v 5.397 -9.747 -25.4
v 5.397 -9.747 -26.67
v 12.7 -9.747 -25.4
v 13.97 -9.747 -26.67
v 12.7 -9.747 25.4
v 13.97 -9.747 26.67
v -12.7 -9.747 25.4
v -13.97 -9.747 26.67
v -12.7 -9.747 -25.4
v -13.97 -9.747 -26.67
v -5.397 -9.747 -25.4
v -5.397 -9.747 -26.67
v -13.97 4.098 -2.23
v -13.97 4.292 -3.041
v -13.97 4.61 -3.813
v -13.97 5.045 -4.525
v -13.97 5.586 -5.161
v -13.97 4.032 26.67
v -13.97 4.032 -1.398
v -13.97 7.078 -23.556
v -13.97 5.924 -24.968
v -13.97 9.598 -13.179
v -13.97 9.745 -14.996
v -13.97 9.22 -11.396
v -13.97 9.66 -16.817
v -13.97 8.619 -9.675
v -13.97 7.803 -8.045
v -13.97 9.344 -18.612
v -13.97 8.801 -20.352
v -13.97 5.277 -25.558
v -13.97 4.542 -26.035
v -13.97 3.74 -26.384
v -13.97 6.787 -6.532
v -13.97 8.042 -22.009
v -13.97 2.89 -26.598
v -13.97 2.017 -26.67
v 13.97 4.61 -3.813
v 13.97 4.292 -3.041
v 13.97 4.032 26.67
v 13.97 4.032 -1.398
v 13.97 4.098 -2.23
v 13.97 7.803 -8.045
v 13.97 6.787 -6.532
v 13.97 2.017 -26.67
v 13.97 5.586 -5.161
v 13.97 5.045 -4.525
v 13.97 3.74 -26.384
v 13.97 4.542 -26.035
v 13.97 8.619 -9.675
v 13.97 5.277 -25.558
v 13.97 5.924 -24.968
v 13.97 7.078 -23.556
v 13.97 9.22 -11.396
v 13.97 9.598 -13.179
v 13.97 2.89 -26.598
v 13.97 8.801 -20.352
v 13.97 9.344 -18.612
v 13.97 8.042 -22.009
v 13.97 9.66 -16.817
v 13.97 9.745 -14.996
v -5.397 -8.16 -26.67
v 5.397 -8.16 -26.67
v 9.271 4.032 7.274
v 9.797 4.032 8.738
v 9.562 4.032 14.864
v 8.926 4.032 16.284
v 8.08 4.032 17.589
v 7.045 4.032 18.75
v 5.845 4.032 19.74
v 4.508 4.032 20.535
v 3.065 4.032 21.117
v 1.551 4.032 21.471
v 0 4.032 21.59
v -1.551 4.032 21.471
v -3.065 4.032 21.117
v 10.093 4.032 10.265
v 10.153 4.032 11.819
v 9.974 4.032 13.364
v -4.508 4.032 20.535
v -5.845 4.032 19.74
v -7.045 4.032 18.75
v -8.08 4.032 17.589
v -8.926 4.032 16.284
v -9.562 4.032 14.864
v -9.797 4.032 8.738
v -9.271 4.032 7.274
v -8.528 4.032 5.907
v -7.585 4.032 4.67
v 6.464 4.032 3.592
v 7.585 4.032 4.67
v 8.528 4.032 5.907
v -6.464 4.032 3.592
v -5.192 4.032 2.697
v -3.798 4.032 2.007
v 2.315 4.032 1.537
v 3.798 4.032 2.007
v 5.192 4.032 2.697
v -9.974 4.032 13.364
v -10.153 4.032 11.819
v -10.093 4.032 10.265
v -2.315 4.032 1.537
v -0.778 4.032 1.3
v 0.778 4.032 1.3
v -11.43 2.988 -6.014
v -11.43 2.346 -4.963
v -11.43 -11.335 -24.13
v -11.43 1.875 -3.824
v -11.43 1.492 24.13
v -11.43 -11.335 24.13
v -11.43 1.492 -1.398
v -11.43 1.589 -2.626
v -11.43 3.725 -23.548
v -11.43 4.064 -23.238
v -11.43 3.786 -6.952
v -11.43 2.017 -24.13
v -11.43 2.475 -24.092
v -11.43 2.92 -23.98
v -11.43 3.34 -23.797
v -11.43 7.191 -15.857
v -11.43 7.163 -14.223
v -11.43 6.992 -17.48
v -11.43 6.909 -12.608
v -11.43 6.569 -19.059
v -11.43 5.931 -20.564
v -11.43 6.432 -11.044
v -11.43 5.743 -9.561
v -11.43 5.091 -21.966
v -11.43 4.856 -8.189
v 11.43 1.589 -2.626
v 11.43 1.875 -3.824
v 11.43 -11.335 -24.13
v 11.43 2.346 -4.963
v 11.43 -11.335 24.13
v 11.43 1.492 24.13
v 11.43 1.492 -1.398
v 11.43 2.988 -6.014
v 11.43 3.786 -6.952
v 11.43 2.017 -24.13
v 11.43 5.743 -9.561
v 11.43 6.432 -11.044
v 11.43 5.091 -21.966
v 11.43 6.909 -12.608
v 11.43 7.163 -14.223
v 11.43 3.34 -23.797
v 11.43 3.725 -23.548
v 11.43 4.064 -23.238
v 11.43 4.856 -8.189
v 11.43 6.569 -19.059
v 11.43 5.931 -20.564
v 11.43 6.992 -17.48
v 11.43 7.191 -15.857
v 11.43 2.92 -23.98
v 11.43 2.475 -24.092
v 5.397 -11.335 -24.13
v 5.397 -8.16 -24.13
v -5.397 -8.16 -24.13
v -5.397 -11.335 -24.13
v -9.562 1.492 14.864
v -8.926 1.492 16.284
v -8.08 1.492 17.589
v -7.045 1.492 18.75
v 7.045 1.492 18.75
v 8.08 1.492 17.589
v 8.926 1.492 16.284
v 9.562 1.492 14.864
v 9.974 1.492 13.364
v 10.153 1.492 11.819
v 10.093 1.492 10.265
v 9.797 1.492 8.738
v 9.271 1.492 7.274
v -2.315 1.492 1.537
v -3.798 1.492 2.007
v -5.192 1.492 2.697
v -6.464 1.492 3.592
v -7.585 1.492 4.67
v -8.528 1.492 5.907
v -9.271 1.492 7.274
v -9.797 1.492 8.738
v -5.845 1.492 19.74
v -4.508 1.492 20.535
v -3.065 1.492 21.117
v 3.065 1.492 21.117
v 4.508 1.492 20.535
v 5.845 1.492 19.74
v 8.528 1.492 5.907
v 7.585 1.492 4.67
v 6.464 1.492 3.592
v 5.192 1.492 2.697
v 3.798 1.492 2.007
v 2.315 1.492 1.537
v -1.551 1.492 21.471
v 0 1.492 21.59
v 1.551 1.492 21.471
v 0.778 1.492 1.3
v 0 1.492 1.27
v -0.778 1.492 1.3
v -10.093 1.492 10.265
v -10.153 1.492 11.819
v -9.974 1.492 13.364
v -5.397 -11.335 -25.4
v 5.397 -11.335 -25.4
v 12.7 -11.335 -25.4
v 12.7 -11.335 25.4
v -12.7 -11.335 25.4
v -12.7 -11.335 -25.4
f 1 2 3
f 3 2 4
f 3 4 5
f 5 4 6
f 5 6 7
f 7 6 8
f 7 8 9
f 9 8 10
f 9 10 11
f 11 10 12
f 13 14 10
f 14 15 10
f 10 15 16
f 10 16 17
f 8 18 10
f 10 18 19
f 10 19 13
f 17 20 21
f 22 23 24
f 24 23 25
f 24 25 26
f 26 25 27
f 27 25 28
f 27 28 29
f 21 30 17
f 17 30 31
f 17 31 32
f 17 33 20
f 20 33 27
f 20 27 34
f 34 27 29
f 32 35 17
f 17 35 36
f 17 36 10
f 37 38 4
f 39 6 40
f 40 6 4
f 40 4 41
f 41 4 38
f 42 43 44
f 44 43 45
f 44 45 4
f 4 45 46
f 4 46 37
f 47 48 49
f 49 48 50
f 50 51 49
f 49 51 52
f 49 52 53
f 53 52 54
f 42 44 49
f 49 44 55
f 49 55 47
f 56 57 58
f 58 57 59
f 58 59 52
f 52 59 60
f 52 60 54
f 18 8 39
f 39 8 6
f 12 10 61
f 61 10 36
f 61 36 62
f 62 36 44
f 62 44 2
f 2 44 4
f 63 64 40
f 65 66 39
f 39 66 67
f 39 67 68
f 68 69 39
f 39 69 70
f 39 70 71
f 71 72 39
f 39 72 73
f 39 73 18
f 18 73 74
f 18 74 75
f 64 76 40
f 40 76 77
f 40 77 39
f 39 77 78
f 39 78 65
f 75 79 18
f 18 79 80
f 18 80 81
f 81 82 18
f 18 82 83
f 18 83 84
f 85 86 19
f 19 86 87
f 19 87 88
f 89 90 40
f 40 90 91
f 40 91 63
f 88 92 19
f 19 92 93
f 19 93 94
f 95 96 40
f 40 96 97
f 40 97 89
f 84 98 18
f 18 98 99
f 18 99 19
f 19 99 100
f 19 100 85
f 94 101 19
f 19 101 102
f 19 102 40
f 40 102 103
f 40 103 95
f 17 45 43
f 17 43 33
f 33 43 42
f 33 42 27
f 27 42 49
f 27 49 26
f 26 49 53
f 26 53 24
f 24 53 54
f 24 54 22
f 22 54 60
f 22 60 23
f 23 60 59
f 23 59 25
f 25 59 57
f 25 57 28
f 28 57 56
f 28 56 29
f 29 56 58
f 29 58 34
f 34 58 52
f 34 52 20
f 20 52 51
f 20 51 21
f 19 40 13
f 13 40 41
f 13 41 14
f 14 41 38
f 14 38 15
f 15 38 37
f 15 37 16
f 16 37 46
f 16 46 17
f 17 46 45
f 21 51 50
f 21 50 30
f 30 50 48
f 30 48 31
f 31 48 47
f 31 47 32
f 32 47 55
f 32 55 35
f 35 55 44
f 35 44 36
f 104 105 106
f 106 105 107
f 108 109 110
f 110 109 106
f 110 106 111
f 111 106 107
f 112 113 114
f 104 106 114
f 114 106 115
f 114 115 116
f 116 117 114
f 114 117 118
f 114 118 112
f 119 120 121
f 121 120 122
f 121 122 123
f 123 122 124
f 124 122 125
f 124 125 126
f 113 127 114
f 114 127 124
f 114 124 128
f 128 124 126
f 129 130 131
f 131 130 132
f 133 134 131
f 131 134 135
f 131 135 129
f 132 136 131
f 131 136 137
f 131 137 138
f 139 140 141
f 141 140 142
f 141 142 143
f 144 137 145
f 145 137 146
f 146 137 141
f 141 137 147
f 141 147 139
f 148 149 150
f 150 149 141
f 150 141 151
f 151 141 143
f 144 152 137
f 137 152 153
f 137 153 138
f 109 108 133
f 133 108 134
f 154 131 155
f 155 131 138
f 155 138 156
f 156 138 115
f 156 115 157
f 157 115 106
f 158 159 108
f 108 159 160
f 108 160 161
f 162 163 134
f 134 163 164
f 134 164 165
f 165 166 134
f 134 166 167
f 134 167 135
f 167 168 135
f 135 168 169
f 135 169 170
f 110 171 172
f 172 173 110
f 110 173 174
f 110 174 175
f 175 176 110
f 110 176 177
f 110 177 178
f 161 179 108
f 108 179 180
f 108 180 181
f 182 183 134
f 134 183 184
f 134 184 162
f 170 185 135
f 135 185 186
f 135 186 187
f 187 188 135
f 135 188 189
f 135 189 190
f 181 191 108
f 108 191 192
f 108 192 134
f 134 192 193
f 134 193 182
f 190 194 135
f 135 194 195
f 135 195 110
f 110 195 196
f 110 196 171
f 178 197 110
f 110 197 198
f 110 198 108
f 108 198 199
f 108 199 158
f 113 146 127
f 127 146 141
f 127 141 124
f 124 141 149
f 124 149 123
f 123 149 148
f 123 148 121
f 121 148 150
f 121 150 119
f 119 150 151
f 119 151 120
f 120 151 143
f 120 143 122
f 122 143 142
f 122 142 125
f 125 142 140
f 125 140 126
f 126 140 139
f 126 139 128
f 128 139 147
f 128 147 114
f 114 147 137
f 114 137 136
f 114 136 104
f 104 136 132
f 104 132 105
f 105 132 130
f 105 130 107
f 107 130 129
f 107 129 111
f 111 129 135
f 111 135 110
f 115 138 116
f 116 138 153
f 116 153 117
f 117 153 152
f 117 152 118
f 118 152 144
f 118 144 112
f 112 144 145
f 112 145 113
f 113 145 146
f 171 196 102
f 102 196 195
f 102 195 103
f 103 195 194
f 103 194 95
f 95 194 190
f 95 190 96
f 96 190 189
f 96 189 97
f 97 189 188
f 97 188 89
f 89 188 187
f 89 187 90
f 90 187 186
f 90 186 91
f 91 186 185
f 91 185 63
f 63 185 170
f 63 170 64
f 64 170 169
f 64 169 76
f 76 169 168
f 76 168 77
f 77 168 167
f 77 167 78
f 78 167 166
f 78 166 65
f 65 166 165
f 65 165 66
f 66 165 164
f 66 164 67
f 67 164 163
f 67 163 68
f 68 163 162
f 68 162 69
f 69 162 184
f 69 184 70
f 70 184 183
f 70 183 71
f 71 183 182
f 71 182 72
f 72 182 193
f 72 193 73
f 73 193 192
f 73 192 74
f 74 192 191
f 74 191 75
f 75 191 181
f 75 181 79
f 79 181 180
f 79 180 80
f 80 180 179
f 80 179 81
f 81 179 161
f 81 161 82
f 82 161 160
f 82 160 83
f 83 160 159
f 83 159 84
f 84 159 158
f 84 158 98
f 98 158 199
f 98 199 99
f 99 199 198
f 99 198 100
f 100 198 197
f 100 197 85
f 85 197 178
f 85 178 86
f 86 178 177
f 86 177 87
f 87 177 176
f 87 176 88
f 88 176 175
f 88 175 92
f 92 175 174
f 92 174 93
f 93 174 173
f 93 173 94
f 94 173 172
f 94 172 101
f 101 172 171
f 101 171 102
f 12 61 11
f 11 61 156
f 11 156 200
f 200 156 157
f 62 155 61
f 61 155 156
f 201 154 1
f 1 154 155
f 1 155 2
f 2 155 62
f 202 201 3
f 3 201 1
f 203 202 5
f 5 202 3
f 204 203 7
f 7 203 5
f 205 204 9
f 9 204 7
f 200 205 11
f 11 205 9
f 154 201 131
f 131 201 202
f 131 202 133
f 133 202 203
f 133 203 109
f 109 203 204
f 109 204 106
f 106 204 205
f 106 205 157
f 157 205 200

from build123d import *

# Parameters (mm, degrees)
SKETCH1_W           = 27.94
SKETCH1_H           = 53.34
BOSS_EXTRUDE1_DEPTH = 9.74725
CUT_EXTRUDE1_DEPTH  = 27.94
FILLET1_R           = 5.334
FILLET2_R           = 5.334
SHELL1_T            = -2.54
SKETCH3_R           = 10.16
CUT_EXTRUDE2_DEPTH  = 24.13
SKETCH5_W           = 10.795
SKETCH5_H           = 1.5875
CUT_EXTRUDE3_DEPTH  = 2.54
BOSS_EXTRUDE2_DEPTH = 1.5875


with BuildPart() as part:
    # Sketch1 → Boss-Extrude1 (new, symmetric)
    with BuildSketch(Plane(origin=(0, 0, 0), x_dir=(1, 0, 0), z_dir=(0, 1, 0))):
        Rectangle(SKETCH1_W, SKETCH1_H)
    extrude(amount=BOSS_EXTRUDE1_DEPTH, both=True)

    # Sketch2 → Cut-Extrude1 (cut)
    with BuildSketch(Plane(origin=(13.97, 0, 0), x_dir=(0, 0, -1), z_dir=(1, 0, 0))):
        with BuildLine():
            Line((-26.67, 9.74725), (-26.67, 4.03225))
            Line((-26.67, 4.03225), (3.81, 4.03225))
            ThreePointArc((3.81, 4.03225), (8.850435754, 8.238878491), (15.24, 9.74725))
            Line((15.24, 9.74725), (-26.67, 9.74725))
        make_face()
        with BuildLine():
            Line((26.67, 9.74725), (15.24, 9.74725))
            ThreePointArc((15.24, 9.74725), (21.629564246, 8.238878491), (26.67, 4.03225))
            Line((26.67, 4.03225), (26.67, 9.74725))
        make_face()
    extrude(amount=-CUT_EXTRUDE1_DEPTH, mode=Mode.SUBTRACT)

    # Fillet1
    fillet1_edges = [part.edges().sort_by_distance(p)[0] for p in [
        (0, 4.03225, -3.81),
    ]]
    fillet(fillet1_edges, radius=FILLET1_R)

    # Fillet2
    fillet2_edges = [part.edges().sort_by_distance(p)[0] for p in [
        (0, 4.03225, -26.67),
    ]]
    fillet(fillet2_edges, radius=FILLET2_R)

    # Shell1
    shell1_openings = [part.faces().sort_by_distance(p)[0] for p in [
        (0, -9.74725, 0),
    ]]
    offset(amount=SHELL1_T, openings=shell1_openings, kind=Kind.INTERSECTION)

    # Sketch3 → Cut-Extrude2 (cut)
    with BuildSketch(Plane(origin=(0, 4.03225, 0), x_dir=(1, 0, 0), z_dir=(0, 1, 0))):
        with Locations(Location((0, -11.43, 0), (0, 0, 270))):
            Circle(SKETCH3_R)
    extrude(amount=-CUT_EXTRUDE2_DEPTH, mode=Mode.SUBTRACT)

    # Sketch5 → Cut-Extrude3 (cut)
    with BuildSketch(Plane(origin=(0, 0, -26.67), x_dir=(-1, 0, 0), z_dir=(0, 0, -1))):
        with Locations((0, -8.9535)):
            Rectangle(SKETCH5_W, SKETCH5_H)
    extrude(amount=-CUT_EXTRUDE3_DEPTH, mode=Mode.SUBTRACT)

    # Sketch4 → Boss-Extrude2 (add)
    with BuildSketch(Plane.XZ.offset(9.74725)):
        Polygon((-5.3975, -24.13), (-11.43, -24.13), (-11.43, 24.13), (11.43, 24.13), (11.43, -24.13), (5.3975, -24.13), (5.3975, -25.4), (12.7, -25.4), (12.7, 25.4), (-12.7, 25.4), (-12.7, -25.4), (-5.3975, -25.4), align=None)
    extrude(amount=BOSS_EXTRUDE2_DEPTH)


solid = part.part
